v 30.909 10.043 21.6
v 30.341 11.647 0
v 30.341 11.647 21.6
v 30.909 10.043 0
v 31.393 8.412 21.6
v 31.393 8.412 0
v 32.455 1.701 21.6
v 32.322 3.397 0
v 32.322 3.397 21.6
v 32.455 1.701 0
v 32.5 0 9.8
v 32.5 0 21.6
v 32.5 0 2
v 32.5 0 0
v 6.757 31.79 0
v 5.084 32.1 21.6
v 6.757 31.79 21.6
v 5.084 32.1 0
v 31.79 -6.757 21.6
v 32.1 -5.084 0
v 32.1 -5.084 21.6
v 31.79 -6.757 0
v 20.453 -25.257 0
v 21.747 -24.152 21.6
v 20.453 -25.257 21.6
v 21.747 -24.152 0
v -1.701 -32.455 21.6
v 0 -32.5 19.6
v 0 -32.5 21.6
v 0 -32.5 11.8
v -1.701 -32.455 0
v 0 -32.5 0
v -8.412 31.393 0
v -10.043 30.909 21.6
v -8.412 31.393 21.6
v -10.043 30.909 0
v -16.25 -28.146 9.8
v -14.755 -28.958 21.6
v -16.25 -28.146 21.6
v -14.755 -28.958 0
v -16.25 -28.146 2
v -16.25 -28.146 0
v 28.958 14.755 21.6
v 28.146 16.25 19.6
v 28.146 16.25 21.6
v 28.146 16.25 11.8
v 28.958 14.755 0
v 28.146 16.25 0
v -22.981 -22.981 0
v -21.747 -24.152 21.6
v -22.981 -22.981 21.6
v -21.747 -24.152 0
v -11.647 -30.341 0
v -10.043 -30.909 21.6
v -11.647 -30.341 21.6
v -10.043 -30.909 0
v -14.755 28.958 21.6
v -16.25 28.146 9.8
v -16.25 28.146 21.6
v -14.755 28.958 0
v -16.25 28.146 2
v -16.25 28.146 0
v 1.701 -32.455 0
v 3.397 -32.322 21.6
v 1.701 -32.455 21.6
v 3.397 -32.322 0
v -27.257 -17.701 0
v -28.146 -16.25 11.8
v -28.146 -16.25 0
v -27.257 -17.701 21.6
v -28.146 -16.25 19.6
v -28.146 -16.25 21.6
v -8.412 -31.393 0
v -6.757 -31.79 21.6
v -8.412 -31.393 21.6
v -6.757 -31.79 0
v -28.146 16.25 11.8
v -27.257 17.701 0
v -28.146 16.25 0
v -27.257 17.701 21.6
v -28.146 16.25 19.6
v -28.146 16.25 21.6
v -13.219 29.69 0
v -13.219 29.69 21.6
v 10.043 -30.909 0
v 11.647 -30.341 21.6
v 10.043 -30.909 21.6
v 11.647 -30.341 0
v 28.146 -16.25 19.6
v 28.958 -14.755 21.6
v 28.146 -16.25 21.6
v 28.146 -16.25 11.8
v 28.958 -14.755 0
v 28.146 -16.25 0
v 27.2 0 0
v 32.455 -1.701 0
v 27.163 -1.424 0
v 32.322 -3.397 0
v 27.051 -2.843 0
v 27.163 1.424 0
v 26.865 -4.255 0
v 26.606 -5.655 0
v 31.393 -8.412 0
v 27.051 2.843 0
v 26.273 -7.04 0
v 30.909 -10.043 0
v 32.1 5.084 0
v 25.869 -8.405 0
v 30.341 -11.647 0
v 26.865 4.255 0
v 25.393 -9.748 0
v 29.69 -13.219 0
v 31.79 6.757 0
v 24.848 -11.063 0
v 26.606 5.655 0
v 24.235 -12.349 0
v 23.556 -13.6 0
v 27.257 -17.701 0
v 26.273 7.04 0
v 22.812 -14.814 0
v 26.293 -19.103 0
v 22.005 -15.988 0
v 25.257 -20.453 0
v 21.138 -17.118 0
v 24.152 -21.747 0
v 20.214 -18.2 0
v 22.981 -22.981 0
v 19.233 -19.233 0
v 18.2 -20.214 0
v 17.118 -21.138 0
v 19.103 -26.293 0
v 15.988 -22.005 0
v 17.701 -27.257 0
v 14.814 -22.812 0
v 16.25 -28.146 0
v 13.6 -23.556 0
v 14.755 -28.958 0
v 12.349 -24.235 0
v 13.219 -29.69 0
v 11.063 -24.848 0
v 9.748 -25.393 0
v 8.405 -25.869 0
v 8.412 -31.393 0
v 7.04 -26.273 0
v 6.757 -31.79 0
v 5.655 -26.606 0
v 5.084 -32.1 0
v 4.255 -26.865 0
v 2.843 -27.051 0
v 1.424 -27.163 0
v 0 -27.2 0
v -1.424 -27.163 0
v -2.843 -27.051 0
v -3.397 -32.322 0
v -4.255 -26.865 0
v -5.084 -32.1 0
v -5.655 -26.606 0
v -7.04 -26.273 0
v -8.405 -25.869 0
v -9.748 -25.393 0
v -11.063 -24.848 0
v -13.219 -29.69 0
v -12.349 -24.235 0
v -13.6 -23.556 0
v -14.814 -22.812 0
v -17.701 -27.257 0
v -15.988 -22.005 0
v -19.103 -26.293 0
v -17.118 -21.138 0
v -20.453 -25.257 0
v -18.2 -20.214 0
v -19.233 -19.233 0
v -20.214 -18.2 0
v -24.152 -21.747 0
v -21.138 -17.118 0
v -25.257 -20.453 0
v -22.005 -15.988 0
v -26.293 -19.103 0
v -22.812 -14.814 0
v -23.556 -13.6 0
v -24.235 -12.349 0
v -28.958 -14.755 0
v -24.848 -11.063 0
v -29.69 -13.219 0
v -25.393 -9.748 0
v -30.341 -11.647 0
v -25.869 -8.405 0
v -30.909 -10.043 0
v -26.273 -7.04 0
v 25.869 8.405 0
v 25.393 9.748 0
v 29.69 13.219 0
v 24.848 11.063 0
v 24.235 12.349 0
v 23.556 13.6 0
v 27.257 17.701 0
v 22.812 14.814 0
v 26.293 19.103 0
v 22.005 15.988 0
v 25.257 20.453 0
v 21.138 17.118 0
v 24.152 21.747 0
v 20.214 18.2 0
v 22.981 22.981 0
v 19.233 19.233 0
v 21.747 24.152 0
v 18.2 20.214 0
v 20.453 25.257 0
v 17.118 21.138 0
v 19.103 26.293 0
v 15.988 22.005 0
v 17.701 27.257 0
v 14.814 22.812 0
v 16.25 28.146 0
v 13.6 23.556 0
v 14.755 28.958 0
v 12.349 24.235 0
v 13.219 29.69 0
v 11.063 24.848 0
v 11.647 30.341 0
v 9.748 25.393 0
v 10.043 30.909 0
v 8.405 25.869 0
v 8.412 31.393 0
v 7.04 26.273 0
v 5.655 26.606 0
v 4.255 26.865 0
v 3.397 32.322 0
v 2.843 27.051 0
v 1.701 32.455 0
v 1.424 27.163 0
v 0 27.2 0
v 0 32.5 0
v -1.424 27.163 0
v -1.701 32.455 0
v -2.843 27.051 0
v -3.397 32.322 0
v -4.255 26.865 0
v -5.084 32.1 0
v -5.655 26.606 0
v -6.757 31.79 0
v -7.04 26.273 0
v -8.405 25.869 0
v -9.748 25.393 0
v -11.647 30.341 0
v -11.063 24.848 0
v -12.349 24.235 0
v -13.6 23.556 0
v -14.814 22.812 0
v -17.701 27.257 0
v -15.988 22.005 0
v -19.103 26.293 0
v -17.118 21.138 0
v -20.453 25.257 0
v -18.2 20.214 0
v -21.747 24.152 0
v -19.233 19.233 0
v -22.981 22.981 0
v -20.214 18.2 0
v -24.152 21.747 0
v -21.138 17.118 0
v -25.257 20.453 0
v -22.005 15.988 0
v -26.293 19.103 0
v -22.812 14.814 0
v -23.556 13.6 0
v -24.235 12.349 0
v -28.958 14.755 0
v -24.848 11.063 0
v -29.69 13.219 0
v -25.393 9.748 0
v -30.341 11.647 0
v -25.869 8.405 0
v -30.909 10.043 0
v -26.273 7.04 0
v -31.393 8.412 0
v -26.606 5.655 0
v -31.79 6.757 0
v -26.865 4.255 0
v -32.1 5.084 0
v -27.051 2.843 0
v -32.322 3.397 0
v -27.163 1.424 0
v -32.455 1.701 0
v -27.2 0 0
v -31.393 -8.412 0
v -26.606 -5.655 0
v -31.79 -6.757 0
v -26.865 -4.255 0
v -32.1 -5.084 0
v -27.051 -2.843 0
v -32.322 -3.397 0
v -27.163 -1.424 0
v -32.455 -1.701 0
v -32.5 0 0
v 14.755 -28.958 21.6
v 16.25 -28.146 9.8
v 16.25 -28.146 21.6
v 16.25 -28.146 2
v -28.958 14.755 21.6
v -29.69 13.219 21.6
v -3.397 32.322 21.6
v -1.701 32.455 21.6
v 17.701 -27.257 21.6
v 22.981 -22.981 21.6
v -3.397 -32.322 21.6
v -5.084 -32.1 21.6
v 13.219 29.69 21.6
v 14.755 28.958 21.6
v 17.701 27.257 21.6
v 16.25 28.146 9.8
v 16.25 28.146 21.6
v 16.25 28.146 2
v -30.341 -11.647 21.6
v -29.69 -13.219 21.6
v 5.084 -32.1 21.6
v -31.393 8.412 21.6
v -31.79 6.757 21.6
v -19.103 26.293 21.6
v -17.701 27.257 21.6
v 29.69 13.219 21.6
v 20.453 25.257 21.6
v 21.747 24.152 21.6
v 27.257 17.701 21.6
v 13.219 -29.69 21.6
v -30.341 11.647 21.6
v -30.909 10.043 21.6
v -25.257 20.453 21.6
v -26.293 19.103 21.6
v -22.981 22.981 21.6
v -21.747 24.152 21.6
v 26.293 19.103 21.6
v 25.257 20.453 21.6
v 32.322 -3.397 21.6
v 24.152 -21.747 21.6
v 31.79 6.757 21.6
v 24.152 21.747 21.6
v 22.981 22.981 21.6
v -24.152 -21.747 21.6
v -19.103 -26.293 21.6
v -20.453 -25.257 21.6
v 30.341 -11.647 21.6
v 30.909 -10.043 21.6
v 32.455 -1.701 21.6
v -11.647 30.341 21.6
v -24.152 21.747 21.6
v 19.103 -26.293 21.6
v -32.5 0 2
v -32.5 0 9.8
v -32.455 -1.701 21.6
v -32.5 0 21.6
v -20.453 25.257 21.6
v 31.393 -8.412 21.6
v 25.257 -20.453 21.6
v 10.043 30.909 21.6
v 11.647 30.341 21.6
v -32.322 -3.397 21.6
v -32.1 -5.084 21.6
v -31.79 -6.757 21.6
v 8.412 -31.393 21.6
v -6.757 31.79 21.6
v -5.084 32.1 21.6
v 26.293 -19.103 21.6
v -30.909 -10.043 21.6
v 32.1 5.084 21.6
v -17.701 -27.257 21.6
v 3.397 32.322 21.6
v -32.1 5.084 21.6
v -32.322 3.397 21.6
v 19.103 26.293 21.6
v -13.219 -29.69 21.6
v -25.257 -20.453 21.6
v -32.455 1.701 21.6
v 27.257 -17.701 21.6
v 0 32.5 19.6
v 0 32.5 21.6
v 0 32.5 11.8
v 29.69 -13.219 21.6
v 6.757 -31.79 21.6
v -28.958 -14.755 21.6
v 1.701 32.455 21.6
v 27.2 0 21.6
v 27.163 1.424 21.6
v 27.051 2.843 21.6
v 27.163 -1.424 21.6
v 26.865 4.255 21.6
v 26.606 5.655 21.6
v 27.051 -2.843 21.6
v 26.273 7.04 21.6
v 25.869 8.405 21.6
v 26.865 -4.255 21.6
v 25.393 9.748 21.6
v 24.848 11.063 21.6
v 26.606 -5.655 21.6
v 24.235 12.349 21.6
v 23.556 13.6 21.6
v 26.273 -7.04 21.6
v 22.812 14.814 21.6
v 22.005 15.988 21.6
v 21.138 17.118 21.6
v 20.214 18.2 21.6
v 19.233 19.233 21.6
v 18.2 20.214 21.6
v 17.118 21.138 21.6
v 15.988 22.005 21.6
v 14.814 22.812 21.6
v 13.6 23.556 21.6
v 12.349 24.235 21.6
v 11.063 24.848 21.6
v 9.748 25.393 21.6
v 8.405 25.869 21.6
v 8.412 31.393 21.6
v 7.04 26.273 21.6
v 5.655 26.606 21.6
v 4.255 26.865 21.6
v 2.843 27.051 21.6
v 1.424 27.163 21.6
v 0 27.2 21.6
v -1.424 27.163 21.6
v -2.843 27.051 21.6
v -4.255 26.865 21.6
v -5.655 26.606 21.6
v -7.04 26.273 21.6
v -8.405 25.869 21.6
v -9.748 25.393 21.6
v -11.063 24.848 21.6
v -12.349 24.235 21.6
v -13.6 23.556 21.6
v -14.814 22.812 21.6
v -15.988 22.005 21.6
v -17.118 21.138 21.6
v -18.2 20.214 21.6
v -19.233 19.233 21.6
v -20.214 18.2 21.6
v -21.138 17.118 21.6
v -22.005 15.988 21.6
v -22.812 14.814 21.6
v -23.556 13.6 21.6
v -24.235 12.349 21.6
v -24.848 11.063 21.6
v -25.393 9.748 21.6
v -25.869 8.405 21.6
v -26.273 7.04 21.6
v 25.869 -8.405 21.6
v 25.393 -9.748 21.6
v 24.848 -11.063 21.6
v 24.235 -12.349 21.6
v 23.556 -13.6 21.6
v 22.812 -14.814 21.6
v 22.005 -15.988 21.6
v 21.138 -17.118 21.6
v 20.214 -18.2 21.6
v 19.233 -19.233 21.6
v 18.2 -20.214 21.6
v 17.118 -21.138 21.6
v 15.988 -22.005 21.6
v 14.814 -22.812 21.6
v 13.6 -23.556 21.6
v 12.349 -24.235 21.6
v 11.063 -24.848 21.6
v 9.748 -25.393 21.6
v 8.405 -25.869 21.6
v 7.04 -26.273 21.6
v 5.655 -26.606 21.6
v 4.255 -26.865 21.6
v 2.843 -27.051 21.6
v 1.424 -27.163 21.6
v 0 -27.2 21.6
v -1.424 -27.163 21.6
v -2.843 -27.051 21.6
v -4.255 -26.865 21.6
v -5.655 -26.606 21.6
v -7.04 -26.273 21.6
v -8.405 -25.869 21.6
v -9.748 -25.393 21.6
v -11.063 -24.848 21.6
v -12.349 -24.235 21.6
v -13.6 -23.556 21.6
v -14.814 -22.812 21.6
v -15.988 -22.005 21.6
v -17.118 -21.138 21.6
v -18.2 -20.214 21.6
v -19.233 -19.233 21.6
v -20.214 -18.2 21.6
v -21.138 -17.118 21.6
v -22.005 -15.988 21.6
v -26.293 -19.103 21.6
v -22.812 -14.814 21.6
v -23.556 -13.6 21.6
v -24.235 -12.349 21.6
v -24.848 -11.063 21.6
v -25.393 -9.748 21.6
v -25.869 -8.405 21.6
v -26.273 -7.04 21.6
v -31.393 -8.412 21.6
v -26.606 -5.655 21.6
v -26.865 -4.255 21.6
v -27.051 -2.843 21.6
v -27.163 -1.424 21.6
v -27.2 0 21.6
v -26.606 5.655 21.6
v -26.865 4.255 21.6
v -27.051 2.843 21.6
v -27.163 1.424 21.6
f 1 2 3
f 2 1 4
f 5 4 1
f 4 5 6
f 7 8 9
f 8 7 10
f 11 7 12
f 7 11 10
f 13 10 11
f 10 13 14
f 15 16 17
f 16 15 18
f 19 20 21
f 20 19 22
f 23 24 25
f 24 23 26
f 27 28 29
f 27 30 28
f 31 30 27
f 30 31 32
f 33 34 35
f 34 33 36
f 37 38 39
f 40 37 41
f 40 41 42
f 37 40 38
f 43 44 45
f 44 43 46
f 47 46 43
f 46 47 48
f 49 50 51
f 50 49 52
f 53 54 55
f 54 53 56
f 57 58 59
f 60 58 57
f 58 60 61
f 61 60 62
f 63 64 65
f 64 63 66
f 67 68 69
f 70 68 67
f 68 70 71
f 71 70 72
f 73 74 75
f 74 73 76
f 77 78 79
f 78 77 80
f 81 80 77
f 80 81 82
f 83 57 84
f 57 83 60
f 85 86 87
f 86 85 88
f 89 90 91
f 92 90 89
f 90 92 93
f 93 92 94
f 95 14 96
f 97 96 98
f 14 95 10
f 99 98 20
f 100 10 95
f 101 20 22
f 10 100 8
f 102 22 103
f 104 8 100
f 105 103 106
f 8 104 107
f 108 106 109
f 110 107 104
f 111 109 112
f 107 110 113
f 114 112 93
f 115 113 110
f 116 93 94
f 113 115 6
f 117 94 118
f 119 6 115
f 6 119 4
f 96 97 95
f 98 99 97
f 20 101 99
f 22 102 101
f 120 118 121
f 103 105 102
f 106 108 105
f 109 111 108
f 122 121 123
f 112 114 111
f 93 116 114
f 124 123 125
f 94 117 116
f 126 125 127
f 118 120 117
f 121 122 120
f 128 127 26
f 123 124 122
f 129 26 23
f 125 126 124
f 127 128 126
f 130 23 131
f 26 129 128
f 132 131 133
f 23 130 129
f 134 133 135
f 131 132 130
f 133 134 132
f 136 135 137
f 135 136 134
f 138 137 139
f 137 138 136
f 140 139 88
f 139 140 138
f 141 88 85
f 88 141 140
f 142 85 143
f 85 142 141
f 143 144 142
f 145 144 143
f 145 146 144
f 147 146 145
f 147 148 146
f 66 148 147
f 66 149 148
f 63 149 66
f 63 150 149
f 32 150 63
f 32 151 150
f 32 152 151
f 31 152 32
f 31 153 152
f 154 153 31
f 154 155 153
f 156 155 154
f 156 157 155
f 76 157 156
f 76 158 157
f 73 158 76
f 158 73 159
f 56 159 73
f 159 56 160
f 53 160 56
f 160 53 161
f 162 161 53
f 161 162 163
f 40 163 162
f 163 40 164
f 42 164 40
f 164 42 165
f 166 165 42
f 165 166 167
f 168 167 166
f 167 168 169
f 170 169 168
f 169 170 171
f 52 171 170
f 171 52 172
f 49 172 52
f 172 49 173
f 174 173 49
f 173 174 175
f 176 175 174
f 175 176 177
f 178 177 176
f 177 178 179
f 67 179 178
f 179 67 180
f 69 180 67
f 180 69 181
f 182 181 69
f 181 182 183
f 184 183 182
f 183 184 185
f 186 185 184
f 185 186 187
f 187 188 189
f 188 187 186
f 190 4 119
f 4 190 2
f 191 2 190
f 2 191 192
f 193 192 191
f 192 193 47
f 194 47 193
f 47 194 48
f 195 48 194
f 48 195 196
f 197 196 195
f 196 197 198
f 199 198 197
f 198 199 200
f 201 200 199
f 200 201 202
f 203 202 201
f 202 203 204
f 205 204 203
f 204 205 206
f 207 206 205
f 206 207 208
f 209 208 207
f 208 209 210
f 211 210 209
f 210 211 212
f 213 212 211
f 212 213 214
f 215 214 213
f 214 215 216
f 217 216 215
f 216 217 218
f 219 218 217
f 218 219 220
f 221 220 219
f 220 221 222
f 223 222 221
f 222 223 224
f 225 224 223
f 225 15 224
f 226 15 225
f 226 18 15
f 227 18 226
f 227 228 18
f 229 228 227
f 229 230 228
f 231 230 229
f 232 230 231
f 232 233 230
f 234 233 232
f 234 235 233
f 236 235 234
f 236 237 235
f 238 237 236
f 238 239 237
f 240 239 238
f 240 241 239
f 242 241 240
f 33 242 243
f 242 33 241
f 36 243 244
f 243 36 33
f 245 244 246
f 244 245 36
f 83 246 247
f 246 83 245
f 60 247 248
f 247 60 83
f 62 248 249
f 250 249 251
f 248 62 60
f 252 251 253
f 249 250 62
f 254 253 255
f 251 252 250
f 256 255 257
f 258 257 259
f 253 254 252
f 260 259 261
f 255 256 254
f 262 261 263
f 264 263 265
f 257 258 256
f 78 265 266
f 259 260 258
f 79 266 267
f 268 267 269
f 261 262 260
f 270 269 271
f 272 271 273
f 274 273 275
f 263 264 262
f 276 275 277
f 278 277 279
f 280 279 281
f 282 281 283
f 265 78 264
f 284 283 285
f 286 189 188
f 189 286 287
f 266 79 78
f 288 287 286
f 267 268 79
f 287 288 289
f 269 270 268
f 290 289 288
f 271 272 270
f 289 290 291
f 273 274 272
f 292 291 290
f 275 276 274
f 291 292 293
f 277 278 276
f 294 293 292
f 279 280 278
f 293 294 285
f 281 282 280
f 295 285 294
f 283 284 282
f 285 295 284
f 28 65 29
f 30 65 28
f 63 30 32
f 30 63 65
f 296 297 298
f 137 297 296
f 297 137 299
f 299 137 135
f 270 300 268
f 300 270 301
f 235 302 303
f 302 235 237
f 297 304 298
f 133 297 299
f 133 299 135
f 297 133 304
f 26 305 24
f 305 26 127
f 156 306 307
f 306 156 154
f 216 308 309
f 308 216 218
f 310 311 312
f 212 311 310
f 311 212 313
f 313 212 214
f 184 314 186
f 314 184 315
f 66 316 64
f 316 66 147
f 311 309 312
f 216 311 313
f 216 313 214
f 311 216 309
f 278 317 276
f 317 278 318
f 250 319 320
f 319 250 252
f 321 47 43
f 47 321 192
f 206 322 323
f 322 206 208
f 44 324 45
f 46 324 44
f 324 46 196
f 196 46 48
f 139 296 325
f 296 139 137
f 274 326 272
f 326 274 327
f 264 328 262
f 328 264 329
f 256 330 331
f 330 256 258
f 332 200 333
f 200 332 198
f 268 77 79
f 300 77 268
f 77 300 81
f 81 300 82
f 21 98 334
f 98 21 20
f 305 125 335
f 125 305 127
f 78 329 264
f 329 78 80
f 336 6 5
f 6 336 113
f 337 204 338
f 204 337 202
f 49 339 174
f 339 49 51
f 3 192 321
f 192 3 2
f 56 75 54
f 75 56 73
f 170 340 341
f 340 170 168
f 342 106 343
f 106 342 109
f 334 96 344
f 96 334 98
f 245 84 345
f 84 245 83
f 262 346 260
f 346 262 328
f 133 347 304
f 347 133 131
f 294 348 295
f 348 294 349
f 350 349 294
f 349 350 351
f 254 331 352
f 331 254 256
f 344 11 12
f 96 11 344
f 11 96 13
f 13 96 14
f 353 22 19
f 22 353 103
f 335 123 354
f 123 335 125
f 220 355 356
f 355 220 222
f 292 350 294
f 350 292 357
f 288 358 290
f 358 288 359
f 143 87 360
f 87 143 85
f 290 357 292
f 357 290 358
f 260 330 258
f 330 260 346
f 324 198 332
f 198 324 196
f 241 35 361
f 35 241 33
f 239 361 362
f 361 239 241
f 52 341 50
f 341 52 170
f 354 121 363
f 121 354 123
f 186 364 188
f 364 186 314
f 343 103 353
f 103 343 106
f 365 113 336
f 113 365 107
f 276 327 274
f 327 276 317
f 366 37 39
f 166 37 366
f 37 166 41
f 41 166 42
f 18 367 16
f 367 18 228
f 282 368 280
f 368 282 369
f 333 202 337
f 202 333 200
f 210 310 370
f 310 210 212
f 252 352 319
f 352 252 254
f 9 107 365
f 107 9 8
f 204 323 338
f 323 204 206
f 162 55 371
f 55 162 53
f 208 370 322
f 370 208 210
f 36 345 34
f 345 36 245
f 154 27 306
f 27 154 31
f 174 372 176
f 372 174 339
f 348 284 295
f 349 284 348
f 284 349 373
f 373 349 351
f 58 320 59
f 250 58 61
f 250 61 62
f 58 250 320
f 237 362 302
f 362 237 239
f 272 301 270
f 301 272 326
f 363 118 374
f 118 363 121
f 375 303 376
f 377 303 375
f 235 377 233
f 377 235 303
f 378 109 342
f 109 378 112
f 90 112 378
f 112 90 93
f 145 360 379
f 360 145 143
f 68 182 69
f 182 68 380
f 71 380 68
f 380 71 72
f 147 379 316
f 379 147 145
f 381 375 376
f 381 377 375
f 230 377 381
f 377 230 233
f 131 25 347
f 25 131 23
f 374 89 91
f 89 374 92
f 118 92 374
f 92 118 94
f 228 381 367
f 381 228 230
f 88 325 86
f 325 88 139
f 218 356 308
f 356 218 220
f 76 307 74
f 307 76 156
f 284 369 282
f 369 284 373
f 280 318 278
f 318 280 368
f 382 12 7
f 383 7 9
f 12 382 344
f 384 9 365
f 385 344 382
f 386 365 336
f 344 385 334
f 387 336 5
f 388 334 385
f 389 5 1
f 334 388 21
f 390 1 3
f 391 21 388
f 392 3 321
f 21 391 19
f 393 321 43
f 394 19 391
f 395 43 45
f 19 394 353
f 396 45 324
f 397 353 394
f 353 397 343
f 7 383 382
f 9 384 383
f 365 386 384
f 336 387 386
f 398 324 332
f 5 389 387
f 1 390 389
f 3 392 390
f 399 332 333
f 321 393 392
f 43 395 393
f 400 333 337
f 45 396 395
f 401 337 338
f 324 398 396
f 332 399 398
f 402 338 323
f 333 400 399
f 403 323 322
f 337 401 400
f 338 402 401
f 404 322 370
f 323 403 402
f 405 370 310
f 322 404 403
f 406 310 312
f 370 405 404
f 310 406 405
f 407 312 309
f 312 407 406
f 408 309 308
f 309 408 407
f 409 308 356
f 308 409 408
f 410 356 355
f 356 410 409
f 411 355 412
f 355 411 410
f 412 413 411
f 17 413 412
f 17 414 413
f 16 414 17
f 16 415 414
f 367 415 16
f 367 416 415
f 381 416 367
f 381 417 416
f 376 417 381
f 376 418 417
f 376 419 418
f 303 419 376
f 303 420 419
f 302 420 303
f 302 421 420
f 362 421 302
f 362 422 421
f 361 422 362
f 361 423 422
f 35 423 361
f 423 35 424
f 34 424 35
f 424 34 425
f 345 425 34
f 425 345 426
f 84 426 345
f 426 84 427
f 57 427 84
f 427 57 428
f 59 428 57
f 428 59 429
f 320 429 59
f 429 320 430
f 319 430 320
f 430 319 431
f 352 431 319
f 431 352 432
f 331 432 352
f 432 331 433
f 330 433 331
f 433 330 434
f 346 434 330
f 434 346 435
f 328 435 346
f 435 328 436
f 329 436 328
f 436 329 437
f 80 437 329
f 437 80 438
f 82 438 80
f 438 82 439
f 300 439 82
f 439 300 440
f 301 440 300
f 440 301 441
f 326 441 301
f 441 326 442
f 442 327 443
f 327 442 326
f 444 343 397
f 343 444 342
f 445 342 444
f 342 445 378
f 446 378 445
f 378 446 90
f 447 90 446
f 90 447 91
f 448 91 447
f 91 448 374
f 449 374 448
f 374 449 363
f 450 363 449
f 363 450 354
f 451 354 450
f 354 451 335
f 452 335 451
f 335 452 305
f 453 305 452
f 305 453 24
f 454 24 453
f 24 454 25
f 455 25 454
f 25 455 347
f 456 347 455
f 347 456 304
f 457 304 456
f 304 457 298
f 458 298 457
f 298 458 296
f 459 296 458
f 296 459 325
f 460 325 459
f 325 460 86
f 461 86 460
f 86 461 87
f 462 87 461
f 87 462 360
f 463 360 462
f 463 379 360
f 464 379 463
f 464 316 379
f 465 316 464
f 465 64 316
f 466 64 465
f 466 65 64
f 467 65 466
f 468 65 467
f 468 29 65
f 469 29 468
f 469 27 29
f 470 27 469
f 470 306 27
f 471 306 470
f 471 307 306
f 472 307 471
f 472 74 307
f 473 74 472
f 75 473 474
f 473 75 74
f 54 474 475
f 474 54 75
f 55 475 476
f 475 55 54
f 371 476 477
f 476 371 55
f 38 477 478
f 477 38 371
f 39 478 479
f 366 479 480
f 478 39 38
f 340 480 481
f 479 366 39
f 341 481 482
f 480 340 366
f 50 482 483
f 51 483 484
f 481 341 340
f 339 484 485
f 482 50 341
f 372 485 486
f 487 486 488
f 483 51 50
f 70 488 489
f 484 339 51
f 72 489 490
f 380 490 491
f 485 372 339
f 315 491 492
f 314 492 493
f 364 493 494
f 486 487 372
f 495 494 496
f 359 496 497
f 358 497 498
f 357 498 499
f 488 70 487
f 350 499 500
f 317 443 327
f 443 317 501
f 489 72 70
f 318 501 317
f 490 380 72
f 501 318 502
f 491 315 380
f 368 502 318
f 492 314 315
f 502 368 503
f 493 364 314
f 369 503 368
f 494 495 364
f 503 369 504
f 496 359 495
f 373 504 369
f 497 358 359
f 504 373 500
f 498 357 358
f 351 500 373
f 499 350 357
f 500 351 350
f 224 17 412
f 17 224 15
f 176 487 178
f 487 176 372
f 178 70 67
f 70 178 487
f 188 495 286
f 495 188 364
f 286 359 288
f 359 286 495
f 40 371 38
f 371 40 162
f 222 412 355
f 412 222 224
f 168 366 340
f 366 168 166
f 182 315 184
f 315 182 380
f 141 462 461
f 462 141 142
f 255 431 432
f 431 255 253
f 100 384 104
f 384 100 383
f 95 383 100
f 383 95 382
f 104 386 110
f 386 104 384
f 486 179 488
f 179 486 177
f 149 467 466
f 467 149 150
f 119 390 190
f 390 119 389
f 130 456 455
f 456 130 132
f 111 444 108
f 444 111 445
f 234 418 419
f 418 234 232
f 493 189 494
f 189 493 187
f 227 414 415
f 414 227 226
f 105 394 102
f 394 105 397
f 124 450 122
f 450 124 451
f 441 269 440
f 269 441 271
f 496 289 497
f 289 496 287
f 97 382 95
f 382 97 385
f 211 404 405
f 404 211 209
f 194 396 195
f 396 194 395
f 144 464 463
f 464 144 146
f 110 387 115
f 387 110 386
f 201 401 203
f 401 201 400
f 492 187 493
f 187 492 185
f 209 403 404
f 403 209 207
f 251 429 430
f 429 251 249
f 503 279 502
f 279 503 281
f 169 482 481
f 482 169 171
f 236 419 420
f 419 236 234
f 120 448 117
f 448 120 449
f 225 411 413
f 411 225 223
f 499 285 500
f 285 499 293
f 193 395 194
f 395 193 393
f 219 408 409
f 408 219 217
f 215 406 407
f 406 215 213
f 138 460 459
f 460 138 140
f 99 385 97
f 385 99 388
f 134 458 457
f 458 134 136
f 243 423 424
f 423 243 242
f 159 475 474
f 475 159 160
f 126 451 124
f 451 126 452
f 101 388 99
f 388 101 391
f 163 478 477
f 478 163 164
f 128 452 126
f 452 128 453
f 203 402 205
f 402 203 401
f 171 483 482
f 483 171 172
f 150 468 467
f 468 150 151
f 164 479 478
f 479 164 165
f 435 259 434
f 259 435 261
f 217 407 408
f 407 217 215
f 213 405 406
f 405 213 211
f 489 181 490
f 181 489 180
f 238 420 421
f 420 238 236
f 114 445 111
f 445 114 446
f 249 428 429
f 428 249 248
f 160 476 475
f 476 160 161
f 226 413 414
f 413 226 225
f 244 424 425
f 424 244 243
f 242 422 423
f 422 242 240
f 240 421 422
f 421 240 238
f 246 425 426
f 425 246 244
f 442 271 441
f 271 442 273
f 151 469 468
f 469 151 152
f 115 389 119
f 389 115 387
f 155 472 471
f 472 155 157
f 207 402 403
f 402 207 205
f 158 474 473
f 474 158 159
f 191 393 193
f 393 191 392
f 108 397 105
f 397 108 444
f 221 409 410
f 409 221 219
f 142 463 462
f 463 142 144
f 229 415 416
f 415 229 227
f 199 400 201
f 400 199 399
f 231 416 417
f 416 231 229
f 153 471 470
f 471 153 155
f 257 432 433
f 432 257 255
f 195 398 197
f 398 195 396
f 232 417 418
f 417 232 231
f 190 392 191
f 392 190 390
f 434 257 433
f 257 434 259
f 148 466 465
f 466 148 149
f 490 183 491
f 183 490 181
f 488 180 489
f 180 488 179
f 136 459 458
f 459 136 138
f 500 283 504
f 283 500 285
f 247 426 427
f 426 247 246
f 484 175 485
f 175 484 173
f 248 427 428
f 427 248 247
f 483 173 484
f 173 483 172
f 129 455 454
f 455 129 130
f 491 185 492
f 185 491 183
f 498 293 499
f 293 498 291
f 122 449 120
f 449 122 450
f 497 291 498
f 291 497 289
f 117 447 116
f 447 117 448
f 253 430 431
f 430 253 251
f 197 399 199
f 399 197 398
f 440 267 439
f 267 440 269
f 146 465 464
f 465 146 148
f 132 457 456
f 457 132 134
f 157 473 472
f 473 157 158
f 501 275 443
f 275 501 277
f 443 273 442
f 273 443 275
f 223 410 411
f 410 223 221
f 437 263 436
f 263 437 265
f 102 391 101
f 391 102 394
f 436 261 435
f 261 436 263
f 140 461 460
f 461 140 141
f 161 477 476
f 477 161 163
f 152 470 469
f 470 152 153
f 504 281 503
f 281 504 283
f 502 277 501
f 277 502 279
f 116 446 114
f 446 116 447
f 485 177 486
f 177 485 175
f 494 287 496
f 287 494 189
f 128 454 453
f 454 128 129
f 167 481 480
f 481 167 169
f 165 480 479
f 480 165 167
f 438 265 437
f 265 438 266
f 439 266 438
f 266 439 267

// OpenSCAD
// file: ../lib.scad
// Solar Rover - shared helper modules
include <config.scad>

// Rounded rectangle plate, centred in XY, sitting on Z=0.
module rbox(size, r=4) {
    x = size[0]; y = size[1]; z = size[2];
    hull() for (sx=[-1,1], sy=[-1,1])
        translate([sx*(x/2-r), sy*(y/2-r), 0]) cylinder(r=r, h=z);
}

// Vertical hole through everything (subtract). Centred on the origin.
module hole(d, h=200) { translate([0,0,-h/2]) cylinder(d=d, h=h); }

// Heat-set insert pocket opening upward at Z=top.
module insert_m3(top) { translate([0,0,top-m3_insert_h]) cylinder(d=m3_insert_d, h=m3_insert_h+0.01); }
module insert_m25(top) { translate([0,0,top-4.5]) cylinder(d=m25_insert_d, h=4.51); }

// Boss for an insert: cylinder from z0 to z1, with insert pocket at the top.
module insert_boss_m3(z0, z1, od=8) {
    difference() {
        translate([0,0,z0]) cylinder(d=od, h=z1-z0);
        insert_m3(z1);
    }
}

// Slot of length l (centre-to-centre) along X, diameter d.
module slot(l, d, h=200) {
    hull() for (sx=[-1,1]) translate([sx*l/2,0,-h/2]) cylinder(d=d, h=h);
}

// Counterbored M3 clearance hole, head at Z=top going down.
module m3_cbore(top, depth=m3_head_h) {
    hole(m3_clear);
    translate([0,0,top-depth]) cylinder(d=m3_head_d, h=depth+50);
}

// Captive hex nut pocket, opening at Z=z (nut goes in from that face).
module m3_nut_pocket(z, depth=m3_nut_h+0.4) {
    translate([0,0,z-depth]) cylinder(d=m3_nut_af/cos(30), h=depth+0.01, $fn=6);
}

// Pair of zip-tie slots (for modules without mounting holes), spaced s apart along X.
module zip_slots(s=30, w=4, l=2.2) {
    for (sx=[-1,1]) translate([sx*s/2,0,0]) cube([l, w, 50], center=true);
}

// D-shaped bore for TT motor shafts.
module d_bore(h=50, extra=0) {
    intersection() {
        cylinder(d=tt_shaft_d+extra, h=h);
        translate([-(tt_shaft_d+extra)/2, -(tt_shaft_flat+extra)/2, 0])
            cube([tt_shaft_d+extra, tt_shaft_flat+extra, h]);
    }
}

// Simple spur gear (trapezoid teeth), module m, z teeth, thickness t. Good enough
// for a slow servo gripper; not a precision involute.
module spur_gear(m=1.25, z=16, t=6, bore=0) {
    rp = m*z/2; ra = rp + m; rf = rp - 1.25*m;
    difference() {
        linear_extrude(t) union() {
            circle(r=rf, $fn=z*4);
            for (i=[0:z-1]) rotate(i*360/z)
                polygon([[rf*cos(-90/z*1.1), rf*sin(-90/z*1.1)],
                         [ra*cos(-90/z*0.45), ra*sin(-90/z*0.45)],
                         [ra*cos( 90/z*0.45), ra*sin( 90/z*0.45)],
                         [rf*cos( 90/z*1.1), rf*sin( 90/z*1.1)]]);
        }
        if (bore > 0) hole(bore);
    }
}

// Servo pocket for an MG996R lying with its output axis along +Z.
// Case centred so the OUTPUT SHAFT is at the origin; case top at Z=0.
module mg996_case_neg(extra=tol) {
    translate([-mg996_shaft_off-extra, -mg996_w/2-extra, -mg996_h-extra])
        cube([mg996_l+2*extra, mg996_w+2*extra, mg996_h+extra+0.01]);
}
module mg996_flange_holes(d=m3_clear, h=60) {
    cx = mg996_l/2 - mg996_shaft_off;
    for (sx=[-1,1], sy=[-1,1])
        translate([cx+sx*mg996_hole_dx/2, sy*mg996_hole_dy/2, -h/2]) cylinder(d=d, h=h);
}
module mg90_case_neg(extra=tol) {
    translate([-mg90_shaft_off-extra, -mg90_w/2-extra, -mg90_h-extra])
        cube([mg90_l+2*extra, mg90_w+2*extra, mg90_h+extra+0.01]);
}
module mg90_flange_holes(d=m2_pilot, h=60) {
    cx = mg90_l/2 - mg90_shaft_off;
    for (sx=[-1,1]) translate([cx+sx*mg90_hole_dx/2, 0, -h/2]) cylinder(d=d, h=h);
}
// Round MG996R horn screw pattern (4 holes) + centre relief.
module mg996_horn_holes(d=m3_clear) {
    hole(9);
    for (a=[0:90:270]) rotate(a) translate([mg996_horn_hole_r,0,0]) hole(d);
}
// file: ../config.scad
// Solar Rover - shared dimensions (all mm)
// Coordinate system: X = forward, Y = left, Z = up. Origin = deck centre, ground at Z=0.
//
// Values marked MEASURE come from typical datasheets/clones and vary between
// suppliers. Measure your parts with calipers and edit them here before printing;
// every part reads its dimensions from this file.

$fn = 64;

// ---------- print / fit ----------
tol        = 0.25;   // general clearance per side
wall       = 2.4;    // default wall (6 perimeters at 0.4 mm nozzle)

// ---------- fasteners ----------
m3_clear     = 3.4;   // M3 clearance hole
m3_insert_d  = 4.1;   // hole for M3x5x4 brass heat-set insert (OD ~4.6)
m3_insert_h  = 5.5;   // insert hole depth
m3_head_d    = 6.2;   // socket head counterbore
m3_head_h    = 3.2;
m3_nut_af    = 5.6;   // nut across flats (+clearance)
m3_nut_h     = 2.6;
m25_clear    = 2.9;
m25_insert_d = 3.5;   // M2.5 insert hole (OD ~4.0)
m2_clear     = 2.4;
m2_pilot     = 1.7;   // pilot hole for M2 thread-forming screw

// ---------- deck ----------
deck_l     = 300;     // printed as two 150 mm halves
deck_w     = 146;
deck_t     = 4;
rib_h      = 8;
rib_w      = 2.4;
flange_h   = 14;      // joint flange (bolts the halves together)
flange_t   = 5;

// ---------- drive ----------
wheel_d       = 65;
wheel_w       = 26;
axle_z        = wheel_d/2;    // axle height above ground
axle_x        = 100;          // front axle at +axle_x, rear at -axle_x
// TT gear motor (dual-shaft, 1:48). MEASURE.
tt_body_l     = 64;           // along X (gearbox + motor can)
tt_body_t     = 22.5;         // along Y (shaft direction)
tt_body_h     = 18.8;         // along Z
tt_shaft_from_end = 11.3;     // shaft centre to gearbox front end
tt_shaft_d    = 5.4;          // D-shaft across round
tt_shaft_flat = 3.7;          // D-shaft across flats
tt_shaft_len  = 9;            // per side, beyond the body face
// two through-holes parallel to the shaft, positions relative to shaft centre [x, z]. MEASURE.
tt_holes      = [[-20.0, 5.5], [-20.0, -5.5]];
motor_outer_y = 72;           // motor face nearest the wheel
clamp_t       = 3;            // clamp plate thickness
deck_bottom_z = axle_z + tt_body_h/2 + clamp_t;   // 44.6
deck_top_z    = deck_bottom_z + deck_t;

// ---------- encoder ----------
enc_slots   = 20;
enc_disc_d  = 22;
enc_disc_t  = 1.6;

// ---------- turret / arm ----------
turret_x      = 108;
turret_d      = 84;           // base OD; top plate skirt overlaps it
turret_h      = 48;           // fixed base height above deck (servo hangs inside)
turret_deck_r = 30;           // 4x M3 at 45/135/225/315 deg: turret base to deck
turret_bolts  = [[20,28],[-20,28],[20,-28],[-20,-28]];  // module interface on the turret top (4x M3)
shoulder_z    = 45;           // shoulder axis above the turret top plate
// MG996R servo. MEASURE.
mg996_l   = 40.7;  mg996_w = 19.7;  mg996_h = 37.0;   // case (h = to top of case)
mg996_flange_l = 54.5; mg996_flange_z = 27.5;  mg996_flange_t = 2.5;
mg996_hole_dx = 49.5; mg996_hole_dy = 10.0; mg996_hole_d = 4.5;
mg996_shaft_off = 10.0;       // output shaft centre from case end
mg996_spline_h  = 6.0;        // case top to horn face
mg996_horn_d    = 22;         // round metal horn
mg996_horn_hole_r = 7.5;      // horn screw circle radius (MEASURE: usually 4 holes)
// MG90S servo. MEASURE.
mg90_l = 22.8; mg90_w = 12.2; mg90_h = 22.7;
mg90_flange_l = 32.5; mg90_flange_z = 16.0; mg90_flange_t = 2.5;
mg90_hole_dx = 27.6; mg90_hole_d = 2.0;
mg90_shaft_off = 6.0;
mg90_spline_h = 5.0;
mg90_horn_d = 7;              // horn hub (single-arm horn)

link_upper = 100;   // shoulder -> elbow
link_fore  = 90;    // elbow -> wrist
link_hand  = 70;    // wrist -> fingertip

// ---------- power / electronics ----------
cell_holder = [77, 80, 21];   // 4x18650 holder footprint. MEASURE.
pi0_holes   = [58, 23];       // Raspberry Pi Zero 2 W, M2.5
pca_holes   = [55.9, 19.0];   // Adafruit-style PCA9685, M2.5. MEASURE (clones vary)
esp_exp_holes = [47, 70];     // ESP32 38-pin screw-terminal expansion board (77x54 mm), M3. MEASURE.
cradle_tb6612 = [20.5, 20.5];  // TB6612FNG breakout board outline. MEASURE.
cradle_mp1584 = [22.4, 17.0];  // MP1584 mini buck outline. MEASURE.
module_slot_w = 2.6;          // module-plate slots: M2/M2.5 screw + nut, or a 2.5 mm zip tie
tray_standoff_h = 32;         // power tray top to logic tray underside
// charge tray: a slotted plate on 4 legs over the battery holder
charge_tray_c    = [-106, 0];         // centre on the deck (same as the battery holder)
charge_tray_size = [76, 102];         // X, Y
charge_tray_z    = 24;                // deck top to plate underside (holder is 21 mm tall)
charge_tray_legs = [for (x=[-34,28], sy=[-1,1]) [x, sy*46]];   // relative to the centre; the front pair clears the motor-clamp inserts

// ---------- body / solar ----------
panel     = [110, 136, 3];    // 6V 2W panel: X, Y, thickness. MEASURE.
roof_post_h = 75;             // deck top to roof tray underside (room for plugged-in jumpers)
tray_frame  = 4;
roof_front_x = 60;            // front tray spans -60..60, rear tray -180..-60
// main file
// Tire (print 4) in TPU 95A. 0.2 mm layers, 3 walls, 15% infill, slow (25 mm/s).
// Stretches over the wheel rim between the two lips.
include <../config.scad>
use <../lib.scad>

tire_t = 5;
id     = wheel_d - 2*tire_t - 0.6;   // slightly undersize so it grips the rim
w      = wheel_w - 4 - 0.4;

difference() {
    cylinder(d=wheel_d, h=w, $fn=120);
    translate([0,0,-1]) cylinder(d=id, h=w+2, $fn=120);
    // chevron-ish tread: alternating grooves
    for (a=[0:10:350]) rotate(a) translate([wheel_d/2, 0, (a/10)%2==0 ? 2 : w/2+1])
        cube([2.4, 2.2, w/2-3], center=false);
}
